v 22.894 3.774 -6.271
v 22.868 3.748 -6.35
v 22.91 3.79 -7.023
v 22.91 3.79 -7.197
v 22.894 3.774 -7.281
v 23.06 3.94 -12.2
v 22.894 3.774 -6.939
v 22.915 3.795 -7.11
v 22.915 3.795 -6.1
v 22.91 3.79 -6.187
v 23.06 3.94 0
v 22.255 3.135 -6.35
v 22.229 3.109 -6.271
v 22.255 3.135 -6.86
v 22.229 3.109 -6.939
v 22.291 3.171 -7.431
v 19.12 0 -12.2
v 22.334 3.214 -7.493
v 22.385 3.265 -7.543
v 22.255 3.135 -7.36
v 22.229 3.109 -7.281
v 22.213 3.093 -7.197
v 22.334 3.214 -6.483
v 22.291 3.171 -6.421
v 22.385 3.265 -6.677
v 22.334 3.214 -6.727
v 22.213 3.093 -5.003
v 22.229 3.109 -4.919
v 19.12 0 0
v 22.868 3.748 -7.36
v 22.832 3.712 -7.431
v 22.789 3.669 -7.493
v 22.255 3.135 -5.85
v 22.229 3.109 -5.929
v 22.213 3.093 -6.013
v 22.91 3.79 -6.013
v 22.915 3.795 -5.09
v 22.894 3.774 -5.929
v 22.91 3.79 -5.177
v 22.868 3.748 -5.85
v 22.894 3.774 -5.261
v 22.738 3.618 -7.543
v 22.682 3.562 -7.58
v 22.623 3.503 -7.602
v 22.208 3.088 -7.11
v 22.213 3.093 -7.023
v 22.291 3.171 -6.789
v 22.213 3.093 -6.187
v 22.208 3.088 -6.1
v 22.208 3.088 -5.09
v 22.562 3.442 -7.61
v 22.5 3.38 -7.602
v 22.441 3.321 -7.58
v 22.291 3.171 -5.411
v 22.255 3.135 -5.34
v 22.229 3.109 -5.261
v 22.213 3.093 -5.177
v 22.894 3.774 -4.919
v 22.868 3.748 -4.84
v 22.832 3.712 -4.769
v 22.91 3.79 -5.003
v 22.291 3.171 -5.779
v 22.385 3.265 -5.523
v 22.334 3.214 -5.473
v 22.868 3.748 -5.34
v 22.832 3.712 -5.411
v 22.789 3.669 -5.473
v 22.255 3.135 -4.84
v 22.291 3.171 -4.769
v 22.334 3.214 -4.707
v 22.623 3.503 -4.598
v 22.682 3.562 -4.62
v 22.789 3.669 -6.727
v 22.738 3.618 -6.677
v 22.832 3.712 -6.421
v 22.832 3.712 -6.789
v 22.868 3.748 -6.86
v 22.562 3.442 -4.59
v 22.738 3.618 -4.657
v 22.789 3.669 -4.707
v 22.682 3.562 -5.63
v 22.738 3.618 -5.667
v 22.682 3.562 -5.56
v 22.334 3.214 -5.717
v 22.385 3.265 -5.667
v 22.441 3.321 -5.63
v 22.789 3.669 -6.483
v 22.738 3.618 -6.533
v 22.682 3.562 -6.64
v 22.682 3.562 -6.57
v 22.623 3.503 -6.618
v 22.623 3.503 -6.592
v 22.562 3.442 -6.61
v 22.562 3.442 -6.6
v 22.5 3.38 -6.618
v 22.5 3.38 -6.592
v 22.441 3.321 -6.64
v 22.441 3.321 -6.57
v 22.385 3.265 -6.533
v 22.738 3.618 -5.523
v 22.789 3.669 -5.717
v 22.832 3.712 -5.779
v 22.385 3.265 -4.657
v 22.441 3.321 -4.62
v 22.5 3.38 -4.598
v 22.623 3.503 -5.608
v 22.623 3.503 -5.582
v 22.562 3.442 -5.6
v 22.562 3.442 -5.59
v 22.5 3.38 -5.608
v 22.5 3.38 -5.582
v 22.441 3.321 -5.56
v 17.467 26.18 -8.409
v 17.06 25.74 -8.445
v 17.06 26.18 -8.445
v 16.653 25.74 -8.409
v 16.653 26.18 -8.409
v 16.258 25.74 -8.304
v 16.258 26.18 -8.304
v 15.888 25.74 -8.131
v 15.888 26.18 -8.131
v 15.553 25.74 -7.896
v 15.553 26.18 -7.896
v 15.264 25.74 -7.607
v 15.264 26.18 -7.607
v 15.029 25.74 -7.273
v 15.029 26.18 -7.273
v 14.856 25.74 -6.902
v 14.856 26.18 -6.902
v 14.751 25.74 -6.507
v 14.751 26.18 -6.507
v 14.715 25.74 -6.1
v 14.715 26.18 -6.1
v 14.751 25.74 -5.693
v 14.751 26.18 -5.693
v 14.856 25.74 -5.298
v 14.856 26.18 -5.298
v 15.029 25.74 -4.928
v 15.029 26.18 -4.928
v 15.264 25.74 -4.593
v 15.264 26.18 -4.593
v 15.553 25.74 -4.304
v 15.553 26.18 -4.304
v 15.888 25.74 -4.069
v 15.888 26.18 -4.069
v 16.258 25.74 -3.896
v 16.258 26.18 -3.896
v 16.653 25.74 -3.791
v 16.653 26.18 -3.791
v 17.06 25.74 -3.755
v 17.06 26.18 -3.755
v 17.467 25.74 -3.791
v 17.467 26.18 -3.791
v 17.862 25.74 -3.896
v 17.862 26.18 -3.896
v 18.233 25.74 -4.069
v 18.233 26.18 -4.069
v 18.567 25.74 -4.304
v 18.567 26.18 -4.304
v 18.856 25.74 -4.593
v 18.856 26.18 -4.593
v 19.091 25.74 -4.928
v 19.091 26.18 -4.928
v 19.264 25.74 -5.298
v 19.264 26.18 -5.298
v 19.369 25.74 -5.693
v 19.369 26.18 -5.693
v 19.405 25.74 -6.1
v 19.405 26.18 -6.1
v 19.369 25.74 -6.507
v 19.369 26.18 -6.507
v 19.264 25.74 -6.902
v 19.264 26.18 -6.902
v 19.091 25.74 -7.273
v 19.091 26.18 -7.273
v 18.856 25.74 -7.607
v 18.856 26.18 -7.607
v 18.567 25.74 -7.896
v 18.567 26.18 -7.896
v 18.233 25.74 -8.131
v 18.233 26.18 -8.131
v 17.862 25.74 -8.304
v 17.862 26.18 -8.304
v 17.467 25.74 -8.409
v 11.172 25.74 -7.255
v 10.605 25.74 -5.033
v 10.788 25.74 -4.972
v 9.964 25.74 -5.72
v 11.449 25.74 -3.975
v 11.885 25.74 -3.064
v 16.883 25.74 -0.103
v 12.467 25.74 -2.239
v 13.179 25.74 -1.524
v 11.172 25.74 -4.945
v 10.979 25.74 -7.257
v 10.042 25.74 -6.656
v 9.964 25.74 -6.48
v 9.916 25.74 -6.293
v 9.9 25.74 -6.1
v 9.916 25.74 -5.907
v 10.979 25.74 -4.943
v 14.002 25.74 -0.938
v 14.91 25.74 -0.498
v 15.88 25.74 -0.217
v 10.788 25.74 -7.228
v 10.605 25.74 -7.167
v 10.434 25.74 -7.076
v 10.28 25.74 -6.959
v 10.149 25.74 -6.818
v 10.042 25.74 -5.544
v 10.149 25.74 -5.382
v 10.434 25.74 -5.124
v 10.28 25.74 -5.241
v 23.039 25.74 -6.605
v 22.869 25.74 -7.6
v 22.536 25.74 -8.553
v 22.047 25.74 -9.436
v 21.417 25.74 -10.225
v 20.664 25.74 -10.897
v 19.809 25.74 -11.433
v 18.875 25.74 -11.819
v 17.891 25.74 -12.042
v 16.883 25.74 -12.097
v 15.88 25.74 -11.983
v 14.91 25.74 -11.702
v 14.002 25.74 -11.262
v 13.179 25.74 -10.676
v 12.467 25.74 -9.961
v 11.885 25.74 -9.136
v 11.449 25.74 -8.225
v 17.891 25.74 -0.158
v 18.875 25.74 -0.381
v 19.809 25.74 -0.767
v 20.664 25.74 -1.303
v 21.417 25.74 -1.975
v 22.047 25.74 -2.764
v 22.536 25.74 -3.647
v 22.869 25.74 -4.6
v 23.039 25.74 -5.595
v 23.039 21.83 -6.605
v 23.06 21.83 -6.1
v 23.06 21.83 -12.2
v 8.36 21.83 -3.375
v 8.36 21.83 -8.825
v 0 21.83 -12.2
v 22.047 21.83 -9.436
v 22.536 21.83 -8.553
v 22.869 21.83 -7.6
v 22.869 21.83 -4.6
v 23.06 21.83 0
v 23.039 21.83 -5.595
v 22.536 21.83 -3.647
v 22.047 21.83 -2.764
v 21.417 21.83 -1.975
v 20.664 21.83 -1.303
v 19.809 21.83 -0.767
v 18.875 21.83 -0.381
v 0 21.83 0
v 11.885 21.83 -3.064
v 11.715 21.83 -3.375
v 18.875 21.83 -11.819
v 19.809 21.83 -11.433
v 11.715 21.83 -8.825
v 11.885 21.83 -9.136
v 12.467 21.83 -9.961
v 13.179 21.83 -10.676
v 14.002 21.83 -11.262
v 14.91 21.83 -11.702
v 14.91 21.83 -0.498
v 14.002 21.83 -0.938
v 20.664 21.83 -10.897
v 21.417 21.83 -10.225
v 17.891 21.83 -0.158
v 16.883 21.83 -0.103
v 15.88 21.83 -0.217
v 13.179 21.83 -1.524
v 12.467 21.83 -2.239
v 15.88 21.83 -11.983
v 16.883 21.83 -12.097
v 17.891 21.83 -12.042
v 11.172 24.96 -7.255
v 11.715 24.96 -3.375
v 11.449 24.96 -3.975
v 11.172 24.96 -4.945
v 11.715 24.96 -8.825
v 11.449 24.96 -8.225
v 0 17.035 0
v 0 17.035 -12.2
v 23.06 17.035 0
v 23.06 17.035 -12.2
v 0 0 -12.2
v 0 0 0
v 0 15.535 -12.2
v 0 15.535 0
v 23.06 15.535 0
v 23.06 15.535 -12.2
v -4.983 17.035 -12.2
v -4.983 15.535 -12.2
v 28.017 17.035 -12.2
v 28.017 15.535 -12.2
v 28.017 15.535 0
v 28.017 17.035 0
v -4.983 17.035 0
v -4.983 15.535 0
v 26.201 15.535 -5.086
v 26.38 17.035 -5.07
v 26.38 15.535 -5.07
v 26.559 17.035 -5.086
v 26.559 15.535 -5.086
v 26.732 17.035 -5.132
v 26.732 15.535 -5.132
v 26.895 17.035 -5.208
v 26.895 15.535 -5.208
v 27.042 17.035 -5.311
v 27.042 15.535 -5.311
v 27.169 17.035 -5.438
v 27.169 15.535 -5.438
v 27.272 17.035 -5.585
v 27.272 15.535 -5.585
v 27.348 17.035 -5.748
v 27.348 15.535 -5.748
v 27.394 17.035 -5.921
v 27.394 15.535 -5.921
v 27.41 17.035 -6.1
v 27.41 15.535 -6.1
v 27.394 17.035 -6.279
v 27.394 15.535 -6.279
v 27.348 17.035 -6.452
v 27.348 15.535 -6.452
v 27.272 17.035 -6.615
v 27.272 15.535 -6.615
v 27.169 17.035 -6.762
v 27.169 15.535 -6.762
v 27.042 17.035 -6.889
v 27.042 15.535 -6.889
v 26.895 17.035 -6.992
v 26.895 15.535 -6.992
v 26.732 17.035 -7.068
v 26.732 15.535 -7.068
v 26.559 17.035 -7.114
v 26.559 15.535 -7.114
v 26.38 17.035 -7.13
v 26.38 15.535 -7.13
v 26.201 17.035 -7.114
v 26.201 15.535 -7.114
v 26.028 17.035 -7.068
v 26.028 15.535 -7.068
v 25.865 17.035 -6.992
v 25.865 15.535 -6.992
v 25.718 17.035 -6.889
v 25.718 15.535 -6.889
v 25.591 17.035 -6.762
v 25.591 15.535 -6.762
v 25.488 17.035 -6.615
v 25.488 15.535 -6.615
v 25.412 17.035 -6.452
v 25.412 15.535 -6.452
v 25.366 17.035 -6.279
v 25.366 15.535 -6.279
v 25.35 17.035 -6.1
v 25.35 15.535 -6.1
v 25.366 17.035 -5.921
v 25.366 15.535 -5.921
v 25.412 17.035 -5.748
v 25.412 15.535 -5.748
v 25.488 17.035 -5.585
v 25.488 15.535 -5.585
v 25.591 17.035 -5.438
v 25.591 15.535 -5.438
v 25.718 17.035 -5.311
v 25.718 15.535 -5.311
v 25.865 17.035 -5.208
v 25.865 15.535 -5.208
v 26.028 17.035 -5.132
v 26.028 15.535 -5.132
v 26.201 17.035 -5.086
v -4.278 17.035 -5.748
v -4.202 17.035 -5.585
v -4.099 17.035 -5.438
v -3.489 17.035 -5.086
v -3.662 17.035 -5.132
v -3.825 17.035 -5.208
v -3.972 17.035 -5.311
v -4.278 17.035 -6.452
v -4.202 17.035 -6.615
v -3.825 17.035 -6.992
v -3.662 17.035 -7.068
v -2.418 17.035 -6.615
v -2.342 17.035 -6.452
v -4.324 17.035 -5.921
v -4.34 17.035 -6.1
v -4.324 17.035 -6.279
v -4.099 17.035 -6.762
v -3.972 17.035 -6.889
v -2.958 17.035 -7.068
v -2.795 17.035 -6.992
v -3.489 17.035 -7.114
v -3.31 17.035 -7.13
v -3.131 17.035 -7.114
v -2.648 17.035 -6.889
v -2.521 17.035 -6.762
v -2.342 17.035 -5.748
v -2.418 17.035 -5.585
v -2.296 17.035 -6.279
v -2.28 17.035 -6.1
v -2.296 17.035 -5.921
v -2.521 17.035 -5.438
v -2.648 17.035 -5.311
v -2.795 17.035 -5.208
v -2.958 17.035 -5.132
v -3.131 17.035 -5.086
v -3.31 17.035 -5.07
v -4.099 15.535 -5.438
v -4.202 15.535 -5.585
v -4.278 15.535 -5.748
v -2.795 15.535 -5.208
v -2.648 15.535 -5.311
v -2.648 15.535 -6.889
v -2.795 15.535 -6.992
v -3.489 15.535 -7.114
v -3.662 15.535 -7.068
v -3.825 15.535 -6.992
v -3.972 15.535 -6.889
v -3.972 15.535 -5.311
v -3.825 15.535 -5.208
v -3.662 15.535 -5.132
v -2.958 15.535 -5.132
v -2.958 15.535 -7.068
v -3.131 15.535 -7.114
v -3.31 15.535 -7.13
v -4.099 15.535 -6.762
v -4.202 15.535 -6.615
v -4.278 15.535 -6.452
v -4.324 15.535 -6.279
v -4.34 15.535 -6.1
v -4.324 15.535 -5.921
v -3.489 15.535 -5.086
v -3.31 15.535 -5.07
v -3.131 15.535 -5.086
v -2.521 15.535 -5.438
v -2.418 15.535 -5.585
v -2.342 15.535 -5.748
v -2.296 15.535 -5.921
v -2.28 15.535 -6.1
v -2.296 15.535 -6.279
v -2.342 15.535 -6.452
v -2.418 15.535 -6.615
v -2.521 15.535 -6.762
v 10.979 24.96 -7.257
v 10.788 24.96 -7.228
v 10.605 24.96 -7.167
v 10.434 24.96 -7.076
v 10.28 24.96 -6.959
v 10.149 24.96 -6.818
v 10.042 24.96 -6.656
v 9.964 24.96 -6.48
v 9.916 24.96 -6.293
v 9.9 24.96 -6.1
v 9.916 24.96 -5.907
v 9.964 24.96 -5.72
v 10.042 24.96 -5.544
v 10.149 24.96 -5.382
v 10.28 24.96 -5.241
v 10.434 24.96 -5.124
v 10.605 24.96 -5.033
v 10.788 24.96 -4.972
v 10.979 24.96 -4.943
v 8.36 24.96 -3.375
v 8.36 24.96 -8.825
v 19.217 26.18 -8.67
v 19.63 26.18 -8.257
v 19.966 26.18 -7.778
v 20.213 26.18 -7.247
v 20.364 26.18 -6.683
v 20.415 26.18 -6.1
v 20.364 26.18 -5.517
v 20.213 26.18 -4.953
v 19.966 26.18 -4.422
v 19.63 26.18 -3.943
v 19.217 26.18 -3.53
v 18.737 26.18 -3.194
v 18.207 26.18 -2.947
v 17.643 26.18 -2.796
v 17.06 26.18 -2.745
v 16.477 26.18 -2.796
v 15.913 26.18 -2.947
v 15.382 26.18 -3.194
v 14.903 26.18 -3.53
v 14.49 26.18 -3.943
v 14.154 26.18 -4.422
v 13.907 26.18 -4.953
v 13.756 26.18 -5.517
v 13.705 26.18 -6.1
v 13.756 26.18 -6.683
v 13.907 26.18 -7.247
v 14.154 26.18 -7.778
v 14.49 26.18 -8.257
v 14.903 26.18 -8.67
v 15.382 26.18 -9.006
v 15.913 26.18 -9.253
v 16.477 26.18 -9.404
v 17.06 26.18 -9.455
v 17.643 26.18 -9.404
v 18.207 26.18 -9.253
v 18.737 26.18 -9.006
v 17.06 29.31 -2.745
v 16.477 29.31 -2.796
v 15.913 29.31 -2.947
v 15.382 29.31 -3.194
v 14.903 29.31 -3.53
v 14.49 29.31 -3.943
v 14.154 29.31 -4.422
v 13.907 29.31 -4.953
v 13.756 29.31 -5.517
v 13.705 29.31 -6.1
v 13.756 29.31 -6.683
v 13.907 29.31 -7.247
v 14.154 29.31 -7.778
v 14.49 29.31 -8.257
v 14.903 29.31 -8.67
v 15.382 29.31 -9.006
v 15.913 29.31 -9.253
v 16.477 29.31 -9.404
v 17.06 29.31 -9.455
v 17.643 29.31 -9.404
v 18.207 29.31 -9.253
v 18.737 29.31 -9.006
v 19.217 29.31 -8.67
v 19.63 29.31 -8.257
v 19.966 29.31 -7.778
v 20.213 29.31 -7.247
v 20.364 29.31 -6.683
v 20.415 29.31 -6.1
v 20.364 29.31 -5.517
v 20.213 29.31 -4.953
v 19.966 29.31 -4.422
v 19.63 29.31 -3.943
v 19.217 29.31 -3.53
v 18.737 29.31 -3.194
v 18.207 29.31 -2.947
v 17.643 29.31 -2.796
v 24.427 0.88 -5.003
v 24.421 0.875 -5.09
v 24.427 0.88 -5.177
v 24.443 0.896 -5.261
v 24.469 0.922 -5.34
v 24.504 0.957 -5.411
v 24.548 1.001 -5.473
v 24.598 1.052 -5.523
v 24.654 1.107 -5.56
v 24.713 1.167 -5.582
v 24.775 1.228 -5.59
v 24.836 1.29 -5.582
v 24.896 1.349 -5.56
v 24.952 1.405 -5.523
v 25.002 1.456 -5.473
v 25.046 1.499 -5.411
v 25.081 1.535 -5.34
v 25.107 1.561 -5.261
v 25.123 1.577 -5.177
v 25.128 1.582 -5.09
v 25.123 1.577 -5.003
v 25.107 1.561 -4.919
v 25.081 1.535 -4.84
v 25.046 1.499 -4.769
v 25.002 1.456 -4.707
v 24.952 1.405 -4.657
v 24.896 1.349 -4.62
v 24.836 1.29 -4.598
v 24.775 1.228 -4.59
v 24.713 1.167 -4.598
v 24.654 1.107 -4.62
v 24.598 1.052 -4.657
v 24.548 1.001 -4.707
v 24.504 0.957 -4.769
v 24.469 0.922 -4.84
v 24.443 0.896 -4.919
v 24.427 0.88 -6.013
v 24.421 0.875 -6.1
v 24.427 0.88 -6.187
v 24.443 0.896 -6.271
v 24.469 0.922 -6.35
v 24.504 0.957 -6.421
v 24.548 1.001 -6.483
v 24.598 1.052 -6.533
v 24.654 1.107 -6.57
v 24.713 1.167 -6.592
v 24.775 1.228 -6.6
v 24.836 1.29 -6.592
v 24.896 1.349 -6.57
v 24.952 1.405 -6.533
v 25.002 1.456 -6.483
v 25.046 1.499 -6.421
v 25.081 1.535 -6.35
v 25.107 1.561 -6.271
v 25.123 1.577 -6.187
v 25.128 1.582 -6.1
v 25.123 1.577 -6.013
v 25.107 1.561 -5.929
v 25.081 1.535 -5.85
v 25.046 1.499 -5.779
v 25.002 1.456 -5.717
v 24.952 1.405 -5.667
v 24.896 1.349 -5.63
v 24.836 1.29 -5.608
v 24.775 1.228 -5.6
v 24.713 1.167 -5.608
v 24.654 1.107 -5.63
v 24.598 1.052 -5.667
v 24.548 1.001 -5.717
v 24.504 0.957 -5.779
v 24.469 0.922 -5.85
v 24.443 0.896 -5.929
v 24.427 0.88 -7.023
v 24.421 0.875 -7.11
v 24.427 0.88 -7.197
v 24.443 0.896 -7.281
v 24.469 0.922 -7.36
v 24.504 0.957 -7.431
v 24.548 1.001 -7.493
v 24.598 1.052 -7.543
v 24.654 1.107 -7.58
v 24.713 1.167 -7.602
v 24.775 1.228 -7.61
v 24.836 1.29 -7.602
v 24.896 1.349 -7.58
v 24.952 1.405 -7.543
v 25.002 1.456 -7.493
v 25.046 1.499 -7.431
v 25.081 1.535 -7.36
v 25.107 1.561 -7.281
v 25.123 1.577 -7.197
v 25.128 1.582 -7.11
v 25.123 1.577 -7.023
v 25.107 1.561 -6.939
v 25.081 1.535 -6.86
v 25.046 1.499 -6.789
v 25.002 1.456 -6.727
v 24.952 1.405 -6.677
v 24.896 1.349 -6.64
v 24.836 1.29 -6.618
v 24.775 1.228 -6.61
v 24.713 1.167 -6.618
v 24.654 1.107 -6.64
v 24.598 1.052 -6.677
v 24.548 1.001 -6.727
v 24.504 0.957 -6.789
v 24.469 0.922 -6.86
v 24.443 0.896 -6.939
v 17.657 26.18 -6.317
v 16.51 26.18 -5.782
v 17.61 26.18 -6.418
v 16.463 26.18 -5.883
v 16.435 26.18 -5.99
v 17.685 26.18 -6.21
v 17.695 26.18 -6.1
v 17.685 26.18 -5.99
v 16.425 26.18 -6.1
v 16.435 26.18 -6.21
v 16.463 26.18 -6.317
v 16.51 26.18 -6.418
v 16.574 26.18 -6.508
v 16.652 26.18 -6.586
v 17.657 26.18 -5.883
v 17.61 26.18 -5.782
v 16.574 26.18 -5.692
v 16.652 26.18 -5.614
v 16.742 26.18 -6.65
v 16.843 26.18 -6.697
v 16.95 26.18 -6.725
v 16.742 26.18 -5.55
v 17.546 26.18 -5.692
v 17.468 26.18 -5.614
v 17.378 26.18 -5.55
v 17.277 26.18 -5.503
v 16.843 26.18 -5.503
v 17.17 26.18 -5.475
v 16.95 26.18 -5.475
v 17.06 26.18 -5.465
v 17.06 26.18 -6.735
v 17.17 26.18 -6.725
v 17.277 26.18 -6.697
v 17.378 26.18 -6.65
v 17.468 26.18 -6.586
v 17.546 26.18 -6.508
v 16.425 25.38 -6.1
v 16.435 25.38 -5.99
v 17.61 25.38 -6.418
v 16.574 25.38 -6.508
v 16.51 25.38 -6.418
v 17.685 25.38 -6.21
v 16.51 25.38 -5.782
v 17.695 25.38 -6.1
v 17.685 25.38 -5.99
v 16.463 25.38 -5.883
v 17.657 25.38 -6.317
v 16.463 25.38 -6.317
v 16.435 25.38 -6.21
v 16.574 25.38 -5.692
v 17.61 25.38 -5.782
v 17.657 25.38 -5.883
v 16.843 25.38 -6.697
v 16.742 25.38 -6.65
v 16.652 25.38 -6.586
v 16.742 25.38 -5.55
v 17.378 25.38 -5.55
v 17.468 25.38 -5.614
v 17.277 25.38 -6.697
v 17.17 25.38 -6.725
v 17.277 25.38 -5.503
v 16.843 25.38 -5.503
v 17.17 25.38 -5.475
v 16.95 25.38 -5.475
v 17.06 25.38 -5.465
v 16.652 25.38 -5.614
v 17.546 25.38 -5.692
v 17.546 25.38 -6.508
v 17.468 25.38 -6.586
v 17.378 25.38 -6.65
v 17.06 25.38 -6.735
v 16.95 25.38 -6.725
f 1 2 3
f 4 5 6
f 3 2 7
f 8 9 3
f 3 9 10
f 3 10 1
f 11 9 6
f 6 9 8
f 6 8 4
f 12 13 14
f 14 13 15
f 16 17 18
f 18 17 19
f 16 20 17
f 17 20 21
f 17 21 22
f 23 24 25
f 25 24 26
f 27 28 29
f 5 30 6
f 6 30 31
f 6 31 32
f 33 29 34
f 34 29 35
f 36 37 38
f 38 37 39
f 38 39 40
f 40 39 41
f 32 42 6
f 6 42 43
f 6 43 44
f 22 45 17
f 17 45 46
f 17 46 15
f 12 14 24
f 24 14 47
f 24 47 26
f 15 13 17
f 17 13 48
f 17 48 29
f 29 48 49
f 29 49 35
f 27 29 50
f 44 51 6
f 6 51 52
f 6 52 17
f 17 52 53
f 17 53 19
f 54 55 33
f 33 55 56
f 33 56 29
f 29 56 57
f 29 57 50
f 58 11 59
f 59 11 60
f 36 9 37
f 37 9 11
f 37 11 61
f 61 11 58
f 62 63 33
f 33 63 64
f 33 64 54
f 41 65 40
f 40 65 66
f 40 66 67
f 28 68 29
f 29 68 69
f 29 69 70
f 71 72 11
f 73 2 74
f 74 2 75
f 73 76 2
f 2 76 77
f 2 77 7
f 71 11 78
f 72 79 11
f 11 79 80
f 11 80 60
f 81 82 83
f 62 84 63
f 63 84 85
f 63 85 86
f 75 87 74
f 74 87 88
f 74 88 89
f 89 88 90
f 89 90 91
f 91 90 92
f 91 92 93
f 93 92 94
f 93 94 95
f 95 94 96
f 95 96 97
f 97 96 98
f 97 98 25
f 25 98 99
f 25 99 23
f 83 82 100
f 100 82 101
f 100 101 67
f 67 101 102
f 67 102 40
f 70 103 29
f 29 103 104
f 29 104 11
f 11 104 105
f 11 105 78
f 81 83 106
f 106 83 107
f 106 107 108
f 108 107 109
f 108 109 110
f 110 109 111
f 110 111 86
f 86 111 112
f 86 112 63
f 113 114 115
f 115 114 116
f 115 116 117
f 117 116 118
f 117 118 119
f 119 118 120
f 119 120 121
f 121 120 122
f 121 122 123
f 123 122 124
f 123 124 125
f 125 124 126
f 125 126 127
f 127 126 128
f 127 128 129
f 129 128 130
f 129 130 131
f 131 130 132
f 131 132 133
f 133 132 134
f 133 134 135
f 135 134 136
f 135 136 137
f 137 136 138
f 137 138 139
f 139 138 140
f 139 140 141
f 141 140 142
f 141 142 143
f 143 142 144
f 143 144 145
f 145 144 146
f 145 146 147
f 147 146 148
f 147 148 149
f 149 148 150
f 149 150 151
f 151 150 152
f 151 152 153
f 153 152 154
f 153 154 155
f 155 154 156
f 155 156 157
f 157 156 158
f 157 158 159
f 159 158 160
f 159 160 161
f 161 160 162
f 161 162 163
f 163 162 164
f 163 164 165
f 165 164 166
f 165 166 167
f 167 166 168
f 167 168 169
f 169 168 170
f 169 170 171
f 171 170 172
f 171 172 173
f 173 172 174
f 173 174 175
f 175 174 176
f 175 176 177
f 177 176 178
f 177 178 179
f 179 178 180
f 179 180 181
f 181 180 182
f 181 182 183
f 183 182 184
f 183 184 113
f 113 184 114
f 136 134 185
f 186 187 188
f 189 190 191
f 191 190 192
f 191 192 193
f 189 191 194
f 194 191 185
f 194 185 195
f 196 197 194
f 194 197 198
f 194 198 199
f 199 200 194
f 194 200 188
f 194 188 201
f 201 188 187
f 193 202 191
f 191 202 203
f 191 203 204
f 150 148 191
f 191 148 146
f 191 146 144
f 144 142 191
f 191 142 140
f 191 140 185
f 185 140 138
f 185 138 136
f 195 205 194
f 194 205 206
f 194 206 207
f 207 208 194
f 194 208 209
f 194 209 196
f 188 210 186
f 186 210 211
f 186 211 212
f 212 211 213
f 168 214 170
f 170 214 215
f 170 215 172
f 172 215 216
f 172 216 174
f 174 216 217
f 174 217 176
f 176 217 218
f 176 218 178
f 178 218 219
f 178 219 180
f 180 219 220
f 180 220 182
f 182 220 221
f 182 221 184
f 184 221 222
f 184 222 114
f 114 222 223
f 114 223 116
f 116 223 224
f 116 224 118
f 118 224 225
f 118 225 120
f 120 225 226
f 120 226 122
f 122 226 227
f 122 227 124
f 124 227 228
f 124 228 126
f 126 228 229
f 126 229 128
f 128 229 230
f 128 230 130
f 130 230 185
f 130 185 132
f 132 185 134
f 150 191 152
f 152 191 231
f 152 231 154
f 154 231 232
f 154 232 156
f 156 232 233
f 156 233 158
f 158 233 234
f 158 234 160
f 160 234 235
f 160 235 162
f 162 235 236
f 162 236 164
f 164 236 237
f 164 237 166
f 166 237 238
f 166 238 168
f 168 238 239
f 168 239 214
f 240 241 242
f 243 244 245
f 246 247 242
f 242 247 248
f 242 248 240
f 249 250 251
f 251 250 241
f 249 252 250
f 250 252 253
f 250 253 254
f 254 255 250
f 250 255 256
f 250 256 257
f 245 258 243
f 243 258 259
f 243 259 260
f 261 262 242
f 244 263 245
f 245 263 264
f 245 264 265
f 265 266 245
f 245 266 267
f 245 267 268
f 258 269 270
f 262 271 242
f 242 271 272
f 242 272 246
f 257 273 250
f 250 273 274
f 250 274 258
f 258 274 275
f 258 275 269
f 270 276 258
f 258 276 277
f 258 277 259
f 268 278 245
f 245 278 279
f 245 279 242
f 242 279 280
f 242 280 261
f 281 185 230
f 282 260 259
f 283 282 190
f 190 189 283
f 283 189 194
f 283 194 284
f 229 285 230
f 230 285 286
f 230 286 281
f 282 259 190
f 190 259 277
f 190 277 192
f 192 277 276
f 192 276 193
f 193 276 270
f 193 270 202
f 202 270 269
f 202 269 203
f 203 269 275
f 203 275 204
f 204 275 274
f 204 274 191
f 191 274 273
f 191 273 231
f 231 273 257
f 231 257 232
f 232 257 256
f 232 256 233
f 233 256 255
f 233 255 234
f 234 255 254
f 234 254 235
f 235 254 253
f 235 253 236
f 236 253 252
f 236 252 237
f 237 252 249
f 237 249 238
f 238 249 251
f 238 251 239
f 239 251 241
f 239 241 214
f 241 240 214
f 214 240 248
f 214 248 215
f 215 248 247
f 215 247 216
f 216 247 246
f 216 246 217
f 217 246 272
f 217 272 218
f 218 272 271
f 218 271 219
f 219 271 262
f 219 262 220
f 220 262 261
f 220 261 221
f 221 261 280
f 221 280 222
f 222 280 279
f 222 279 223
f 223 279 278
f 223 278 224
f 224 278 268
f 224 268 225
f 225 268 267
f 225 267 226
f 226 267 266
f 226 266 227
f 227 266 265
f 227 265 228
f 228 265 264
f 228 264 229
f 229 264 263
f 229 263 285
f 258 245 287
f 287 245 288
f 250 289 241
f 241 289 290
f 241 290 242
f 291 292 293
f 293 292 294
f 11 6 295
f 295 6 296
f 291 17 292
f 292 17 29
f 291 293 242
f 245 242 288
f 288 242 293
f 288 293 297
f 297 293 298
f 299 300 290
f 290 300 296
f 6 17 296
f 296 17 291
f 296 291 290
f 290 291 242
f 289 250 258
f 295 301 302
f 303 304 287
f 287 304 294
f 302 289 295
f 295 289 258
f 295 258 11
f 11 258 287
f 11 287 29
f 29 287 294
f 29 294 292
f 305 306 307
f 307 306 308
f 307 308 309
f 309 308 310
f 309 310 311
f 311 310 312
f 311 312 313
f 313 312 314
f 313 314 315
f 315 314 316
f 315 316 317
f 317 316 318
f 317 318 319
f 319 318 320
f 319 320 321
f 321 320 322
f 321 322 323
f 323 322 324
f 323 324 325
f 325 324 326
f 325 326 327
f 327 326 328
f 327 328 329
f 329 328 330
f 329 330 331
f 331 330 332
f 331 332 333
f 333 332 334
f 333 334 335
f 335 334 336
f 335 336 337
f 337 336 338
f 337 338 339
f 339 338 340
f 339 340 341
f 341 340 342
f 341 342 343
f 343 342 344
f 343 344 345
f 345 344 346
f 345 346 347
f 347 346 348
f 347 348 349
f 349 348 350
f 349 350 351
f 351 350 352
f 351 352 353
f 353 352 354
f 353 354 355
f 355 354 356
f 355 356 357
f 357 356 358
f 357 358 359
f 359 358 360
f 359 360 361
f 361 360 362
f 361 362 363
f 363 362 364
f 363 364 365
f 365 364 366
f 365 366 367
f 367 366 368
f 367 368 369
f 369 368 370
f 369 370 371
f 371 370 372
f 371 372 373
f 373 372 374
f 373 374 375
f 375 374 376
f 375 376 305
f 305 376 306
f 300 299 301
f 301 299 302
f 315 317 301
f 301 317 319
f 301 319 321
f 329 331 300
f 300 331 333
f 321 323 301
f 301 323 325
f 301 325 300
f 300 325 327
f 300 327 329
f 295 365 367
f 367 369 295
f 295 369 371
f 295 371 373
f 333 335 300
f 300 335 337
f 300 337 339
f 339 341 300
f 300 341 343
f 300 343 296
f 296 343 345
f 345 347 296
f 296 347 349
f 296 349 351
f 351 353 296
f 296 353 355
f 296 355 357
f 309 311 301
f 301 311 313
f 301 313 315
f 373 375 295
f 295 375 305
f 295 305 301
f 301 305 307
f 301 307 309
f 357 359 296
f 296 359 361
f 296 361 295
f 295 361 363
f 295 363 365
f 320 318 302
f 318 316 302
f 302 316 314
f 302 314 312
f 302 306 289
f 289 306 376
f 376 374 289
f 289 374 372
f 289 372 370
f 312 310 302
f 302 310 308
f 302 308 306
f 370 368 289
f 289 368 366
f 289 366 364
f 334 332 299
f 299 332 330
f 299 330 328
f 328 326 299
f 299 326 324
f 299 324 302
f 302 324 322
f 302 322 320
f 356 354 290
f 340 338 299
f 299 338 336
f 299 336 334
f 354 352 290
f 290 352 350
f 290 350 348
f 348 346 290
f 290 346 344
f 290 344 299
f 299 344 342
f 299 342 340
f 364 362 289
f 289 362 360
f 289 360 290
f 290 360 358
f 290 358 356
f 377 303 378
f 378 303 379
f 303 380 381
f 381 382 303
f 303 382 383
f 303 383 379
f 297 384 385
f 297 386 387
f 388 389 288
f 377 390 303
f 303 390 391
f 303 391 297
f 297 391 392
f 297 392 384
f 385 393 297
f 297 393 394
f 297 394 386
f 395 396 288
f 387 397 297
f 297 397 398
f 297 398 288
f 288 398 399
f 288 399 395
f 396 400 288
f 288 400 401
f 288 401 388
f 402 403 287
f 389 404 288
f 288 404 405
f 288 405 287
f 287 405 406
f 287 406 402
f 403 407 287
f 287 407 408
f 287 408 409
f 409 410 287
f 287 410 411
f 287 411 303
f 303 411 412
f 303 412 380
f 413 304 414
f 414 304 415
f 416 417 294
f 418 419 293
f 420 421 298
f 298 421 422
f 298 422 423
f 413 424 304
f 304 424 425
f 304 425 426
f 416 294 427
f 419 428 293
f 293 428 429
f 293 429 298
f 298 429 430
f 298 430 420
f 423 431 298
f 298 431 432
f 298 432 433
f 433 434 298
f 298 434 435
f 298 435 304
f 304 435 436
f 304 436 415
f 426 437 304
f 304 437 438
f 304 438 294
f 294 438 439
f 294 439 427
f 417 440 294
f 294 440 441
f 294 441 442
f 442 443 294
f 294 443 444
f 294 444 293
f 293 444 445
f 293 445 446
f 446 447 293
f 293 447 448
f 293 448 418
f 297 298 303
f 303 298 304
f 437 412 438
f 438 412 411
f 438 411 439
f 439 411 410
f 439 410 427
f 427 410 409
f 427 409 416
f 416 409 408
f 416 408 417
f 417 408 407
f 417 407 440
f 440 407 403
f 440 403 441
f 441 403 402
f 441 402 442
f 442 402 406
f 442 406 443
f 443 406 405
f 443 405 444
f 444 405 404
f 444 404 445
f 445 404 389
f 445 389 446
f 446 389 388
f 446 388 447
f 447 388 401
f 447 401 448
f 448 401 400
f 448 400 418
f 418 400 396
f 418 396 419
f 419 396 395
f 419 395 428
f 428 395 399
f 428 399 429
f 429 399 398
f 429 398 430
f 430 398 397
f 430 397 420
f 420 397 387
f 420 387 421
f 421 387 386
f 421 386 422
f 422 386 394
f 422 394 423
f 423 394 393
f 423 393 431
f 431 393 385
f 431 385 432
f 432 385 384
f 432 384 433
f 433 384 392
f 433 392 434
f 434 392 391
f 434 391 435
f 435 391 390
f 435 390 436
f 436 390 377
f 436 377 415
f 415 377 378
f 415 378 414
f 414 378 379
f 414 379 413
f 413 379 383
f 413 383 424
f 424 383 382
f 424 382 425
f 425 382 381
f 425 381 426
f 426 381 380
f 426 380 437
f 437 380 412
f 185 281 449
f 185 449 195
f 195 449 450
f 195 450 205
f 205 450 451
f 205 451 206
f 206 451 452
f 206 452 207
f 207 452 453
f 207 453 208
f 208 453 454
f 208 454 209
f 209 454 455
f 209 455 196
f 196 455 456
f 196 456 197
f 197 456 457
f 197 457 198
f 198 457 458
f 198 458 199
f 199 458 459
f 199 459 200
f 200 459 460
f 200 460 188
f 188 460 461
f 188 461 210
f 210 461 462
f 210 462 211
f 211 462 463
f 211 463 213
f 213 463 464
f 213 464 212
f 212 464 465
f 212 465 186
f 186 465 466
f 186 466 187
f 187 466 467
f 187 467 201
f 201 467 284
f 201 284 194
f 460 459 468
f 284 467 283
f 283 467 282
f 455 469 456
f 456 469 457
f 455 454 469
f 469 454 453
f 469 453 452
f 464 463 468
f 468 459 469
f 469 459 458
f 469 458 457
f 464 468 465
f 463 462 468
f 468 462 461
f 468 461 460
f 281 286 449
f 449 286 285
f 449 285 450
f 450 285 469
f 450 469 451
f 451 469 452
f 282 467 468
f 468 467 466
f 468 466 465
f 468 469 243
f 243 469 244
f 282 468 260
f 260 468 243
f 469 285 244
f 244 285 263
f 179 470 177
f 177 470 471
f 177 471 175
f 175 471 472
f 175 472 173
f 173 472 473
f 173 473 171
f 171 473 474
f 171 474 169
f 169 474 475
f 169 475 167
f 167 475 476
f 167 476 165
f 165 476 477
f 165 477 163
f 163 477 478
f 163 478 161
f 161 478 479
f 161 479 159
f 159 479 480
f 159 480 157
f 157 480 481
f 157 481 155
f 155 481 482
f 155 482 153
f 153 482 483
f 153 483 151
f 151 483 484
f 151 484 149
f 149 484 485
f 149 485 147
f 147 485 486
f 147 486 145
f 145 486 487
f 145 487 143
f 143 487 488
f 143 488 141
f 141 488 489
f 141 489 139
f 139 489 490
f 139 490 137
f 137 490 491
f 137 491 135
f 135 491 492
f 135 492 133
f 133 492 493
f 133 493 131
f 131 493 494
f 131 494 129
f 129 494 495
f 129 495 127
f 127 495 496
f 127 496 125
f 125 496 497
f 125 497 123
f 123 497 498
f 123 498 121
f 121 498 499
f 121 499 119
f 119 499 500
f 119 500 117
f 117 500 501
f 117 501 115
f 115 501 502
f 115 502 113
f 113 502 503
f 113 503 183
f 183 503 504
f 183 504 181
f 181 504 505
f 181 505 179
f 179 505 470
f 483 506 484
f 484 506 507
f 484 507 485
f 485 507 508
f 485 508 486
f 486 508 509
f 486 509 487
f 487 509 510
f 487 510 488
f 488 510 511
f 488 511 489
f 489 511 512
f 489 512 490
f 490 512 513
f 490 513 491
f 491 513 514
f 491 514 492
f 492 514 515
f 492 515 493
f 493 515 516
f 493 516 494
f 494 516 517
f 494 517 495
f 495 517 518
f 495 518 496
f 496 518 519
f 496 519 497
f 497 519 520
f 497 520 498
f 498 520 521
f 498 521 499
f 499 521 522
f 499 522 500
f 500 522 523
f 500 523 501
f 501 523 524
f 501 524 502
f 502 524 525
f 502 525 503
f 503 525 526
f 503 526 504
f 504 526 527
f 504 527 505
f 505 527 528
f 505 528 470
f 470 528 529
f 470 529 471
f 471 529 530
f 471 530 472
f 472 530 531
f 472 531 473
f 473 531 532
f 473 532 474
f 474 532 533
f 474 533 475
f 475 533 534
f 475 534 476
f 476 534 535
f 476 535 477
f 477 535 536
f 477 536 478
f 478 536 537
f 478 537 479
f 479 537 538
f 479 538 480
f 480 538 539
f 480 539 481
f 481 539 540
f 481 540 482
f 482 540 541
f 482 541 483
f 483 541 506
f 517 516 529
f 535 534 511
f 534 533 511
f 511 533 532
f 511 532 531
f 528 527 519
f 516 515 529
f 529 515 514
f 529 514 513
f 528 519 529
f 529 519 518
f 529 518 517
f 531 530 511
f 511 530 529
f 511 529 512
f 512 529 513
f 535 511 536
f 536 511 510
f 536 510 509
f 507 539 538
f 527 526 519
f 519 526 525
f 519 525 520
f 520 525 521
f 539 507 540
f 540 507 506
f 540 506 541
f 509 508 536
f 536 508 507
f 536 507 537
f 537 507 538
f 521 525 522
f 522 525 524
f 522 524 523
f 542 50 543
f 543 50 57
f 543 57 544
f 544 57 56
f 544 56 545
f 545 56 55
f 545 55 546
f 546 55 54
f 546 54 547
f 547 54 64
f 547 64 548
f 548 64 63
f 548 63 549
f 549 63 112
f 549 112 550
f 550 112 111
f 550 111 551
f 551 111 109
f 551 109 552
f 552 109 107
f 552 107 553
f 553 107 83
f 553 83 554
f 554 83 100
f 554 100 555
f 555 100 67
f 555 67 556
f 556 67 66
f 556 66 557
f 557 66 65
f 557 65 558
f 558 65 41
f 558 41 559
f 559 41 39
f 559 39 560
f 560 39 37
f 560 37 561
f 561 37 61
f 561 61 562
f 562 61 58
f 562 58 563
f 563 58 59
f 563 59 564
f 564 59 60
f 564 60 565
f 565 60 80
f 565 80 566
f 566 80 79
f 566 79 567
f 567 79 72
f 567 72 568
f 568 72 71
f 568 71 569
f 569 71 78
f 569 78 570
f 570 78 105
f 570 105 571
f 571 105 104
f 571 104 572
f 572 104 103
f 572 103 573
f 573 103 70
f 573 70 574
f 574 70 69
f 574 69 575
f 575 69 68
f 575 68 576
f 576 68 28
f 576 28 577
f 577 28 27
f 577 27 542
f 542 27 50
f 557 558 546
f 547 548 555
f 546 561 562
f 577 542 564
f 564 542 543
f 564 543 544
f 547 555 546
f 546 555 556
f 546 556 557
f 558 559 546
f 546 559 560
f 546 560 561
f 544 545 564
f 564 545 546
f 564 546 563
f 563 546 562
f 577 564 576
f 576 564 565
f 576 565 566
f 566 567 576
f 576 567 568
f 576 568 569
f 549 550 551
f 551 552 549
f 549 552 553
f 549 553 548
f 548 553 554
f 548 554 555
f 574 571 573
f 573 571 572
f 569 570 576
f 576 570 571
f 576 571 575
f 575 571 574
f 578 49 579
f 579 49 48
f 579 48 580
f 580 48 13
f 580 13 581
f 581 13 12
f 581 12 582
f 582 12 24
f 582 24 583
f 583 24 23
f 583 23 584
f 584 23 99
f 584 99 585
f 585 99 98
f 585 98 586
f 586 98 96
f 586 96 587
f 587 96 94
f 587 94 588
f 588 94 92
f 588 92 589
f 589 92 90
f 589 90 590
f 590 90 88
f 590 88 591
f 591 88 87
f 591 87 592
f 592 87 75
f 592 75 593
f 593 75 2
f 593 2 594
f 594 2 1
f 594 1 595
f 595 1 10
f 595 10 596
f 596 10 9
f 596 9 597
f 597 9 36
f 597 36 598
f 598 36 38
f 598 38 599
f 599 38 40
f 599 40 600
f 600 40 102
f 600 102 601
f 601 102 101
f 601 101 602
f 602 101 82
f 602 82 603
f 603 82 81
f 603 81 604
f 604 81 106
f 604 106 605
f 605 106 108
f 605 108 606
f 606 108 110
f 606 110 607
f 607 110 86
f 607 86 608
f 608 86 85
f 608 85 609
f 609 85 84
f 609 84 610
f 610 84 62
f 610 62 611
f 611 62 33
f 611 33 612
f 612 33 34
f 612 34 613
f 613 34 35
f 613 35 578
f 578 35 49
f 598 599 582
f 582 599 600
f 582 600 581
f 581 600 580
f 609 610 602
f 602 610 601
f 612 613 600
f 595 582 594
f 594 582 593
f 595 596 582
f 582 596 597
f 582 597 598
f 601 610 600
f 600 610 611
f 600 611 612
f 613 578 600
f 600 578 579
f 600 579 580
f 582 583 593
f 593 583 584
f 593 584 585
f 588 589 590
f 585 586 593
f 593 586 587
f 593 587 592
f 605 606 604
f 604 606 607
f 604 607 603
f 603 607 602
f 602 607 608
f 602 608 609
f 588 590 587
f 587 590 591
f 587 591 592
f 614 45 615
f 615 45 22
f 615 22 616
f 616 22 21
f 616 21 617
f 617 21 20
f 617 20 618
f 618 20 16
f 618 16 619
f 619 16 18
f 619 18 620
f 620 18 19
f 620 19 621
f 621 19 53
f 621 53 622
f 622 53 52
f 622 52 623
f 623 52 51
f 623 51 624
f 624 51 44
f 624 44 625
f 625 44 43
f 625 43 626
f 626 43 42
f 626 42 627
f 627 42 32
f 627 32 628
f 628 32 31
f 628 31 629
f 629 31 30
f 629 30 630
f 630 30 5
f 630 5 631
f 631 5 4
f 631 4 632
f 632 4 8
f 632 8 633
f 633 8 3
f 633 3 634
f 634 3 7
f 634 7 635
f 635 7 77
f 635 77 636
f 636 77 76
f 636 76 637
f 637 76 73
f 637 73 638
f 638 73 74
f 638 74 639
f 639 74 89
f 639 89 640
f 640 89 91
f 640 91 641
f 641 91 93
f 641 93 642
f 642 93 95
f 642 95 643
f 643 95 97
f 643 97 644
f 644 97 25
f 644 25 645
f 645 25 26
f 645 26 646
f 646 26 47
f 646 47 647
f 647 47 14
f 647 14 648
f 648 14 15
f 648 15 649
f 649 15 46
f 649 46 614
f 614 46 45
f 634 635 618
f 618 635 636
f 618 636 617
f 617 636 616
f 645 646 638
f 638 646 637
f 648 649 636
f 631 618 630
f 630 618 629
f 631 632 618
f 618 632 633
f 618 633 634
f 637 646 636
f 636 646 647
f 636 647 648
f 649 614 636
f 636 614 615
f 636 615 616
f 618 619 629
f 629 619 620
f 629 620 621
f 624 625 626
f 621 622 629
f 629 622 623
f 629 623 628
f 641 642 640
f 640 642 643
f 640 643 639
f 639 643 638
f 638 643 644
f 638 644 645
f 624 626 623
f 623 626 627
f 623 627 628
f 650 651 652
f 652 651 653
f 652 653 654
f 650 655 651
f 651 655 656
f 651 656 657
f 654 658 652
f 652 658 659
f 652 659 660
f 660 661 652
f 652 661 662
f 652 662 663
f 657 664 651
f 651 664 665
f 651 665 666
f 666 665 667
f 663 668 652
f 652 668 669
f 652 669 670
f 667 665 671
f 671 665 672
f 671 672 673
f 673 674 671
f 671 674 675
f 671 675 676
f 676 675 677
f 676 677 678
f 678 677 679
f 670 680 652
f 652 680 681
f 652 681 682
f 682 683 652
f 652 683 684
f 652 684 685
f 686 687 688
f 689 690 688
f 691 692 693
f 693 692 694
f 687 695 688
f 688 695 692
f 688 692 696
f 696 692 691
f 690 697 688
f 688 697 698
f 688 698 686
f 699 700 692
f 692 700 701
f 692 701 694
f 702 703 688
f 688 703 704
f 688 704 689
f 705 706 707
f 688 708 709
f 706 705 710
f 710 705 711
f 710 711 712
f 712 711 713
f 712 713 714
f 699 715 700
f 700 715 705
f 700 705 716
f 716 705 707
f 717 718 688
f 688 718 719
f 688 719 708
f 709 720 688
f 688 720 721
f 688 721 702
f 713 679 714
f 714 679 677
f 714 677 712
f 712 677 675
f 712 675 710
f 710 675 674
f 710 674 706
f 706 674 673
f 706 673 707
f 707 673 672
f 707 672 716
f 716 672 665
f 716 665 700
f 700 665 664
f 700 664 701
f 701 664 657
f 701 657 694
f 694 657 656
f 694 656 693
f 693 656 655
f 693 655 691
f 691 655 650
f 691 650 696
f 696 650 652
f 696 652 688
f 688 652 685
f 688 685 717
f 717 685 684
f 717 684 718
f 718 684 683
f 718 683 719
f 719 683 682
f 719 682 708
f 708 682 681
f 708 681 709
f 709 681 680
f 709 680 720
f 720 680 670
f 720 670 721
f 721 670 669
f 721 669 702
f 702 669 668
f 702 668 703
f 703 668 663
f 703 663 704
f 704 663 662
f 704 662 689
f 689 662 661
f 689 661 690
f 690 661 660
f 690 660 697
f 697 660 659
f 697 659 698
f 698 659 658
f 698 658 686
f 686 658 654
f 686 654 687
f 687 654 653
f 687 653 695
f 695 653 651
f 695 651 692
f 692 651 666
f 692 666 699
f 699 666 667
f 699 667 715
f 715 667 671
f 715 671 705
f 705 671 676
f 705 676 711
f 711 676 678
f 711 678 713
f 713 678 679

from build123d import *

# Parameters (mm, degrees)
BOSS_EXTRUDE1_DEPTH     = 12.2
SKETCH4_W               = 33
SKETCH4_H               = 1.5
BOSS_EXTRUDE2_DEPTH     = 12.2
SKETCH6_R               = 1.03
CUT_EXTRUDE1_DEPTH      = 5.83
CUT_EXTRUDE1_DEPTH_BACK = 18
SKETCH7_R               = 1.03
CUT_EXTRUDE2_DEPTH      = 5.83
CUT_EXTRUDE2_DEPTH_BACK = 18
SKETCH9_R               = 6
BOSS_EXTRUDE3_DEPTH     = 8.74
SKETCH11_R              = 1.16
BOSS_EXTRUDE4_DEPTH     = 8.74
SKETCH13_W              = 5.4
SKETCH13_H              = 5.45
BOSS_EXTRUDE5_DEPTH     = 7.96
SKETCH14_R              = 2.345
BOSS_EXTRUDE6_DEPTH     = 11.51
SKETCH15_R              = 0.635
CUT_EXTRUDE3_DEPTH      = 3.13
BOSS_EXTRUDE7_START     = 0.8
SKETCH17_R              = 3.355
BOSS_EXTRUDE7_DEPTH     = 3.13
SKETCH18_R              = 0.5
BOSS_EXTRUDE8_DEPTH     = 3.13


with BuildPart() as part:
    # Sketch1 → Boss-Extrude1 (new body)
    with BuildSketch(Plane.XY):
        Polygon((19.12, 0), (23.06, 3.94), (23.06, 21.83), (0, 21.83), (0, 0), align=None)
    extrude(amount=-BOSS_EXTRUDE1_DEPTH)



with BuildPart() as body_2:
    # Sketch4 → Boss-Extrude2 (new body)
    with BuildSketch(Plane.XY):
        with Locations((11.517097498, 16.2852801)):
            Rectangle(SKETCH4_W, SKETCH4_H)
    extrude(amount=-BOSS_EXTRUDE2_DEPTH)

    # Sketch6 → Cut-Extrude1 (cut, two sides)
    with BuildSketch(Plane(origin=(0, 17, 0), x_dir=(1, 0, 0), z_dir=(0, 1, 0))) as cut_extrude1_sk:
        with Locations((-3.31, 6.1)):
            Circle(SKETCH6_R)
    extrude(amount=CUT_EXTRUDE1_DEPTH, mode=Mode.SUBTRACT)
    extrude(cut_extrude1_sk.sketch, amount=-CUT_EXTRUDE1_DEPTH_BACK, mode=Mode.SUBTRACT)

    # Sketch7 → Cut-Extrude2 (cut, two sides)
    with BuildSketch(Plane(origin=(0, 17, 0), x_dir=(1, 0, 0), z_dir=(0, 1, 0))) as cut_extrude2_sk:
        with Locations((26.38, 6.1)):
            Circle(SKETCH7_R)
    extrude(amount=CUT_EXTRUDE2_DEPTH, mode=Mode.SUBTRACT)
    extrude(cut_extrude2_sk.sketch, amount=-CUT_EXTRUDE2_DEPTH_BACK, mode=Mode.SUBTRACT)


with BuildPart() as part_1:
    add(part.part)

    add(body_2.part)  # Boss-Extrude3 merges body 2
    # Sketch9 → Boss-Extrude3 (add)
    with BuildSketch(Plane(origin=(0, 17, 0), x_dir=(1, 0, 0), z_dir=(0, 1, 0))):
        with Locations((17.06, 6.1)):
            Circle(SKETCH9_R)
    extrude(amount=BOSS_EXTRUDE3_DEPTH)

    # Sketch11 → Boss-Extrude4 (add)
    with BuildSketch(Plane(origin=(0, 17, 0), x_dir=(1, 0, 0), z_dir=(0, 1, 0))):
        with Locations((11.06, 6.1)):
            Circle(SKETCH11_R)
    extrude(amount=BOSS_EXTRUDE4_DEPTH)

    # Sketch13 → Boss-Extrude5 (add)
    with BuildSketch(Plane(origin=(0, 17, 0), x_dir=(1, 0, 0), z_dir=(0, 1, 0))):
        with Locations((11.06, 6.1)):
            Rectangle(SKETCH13_W, SKETCH13_H)
    extrude(amount=BOSS_EXTRUDE5_DEPTH)

    # Sketch14 → Boss-Extrude6 (add)
    with BuildSketch(Plane(origin=(0, 17, 0), x_dir=(1, 0, 0), z_dir=(0, 1, 0))):
        with Locations((17.06, 6.1)):
            Circle(SKETCH14_R)
    extrude(amount=BOSS_EXTRUDE6_DEPTH)

    # Sketch15 → Cut-Extrude3 (cut)
    with BuildSketch(Plane(origin=(0, 28.51, 0), x_dir=(1, 0, 0), z_dir=(0, 1, 0))):
        with Locations((17.06, 6.1)):
            Circle(SKETCH15_R)
    extrude(amount=-CUT_EXTRUDE3_DEPTH, mode=Mode.SUBTRACT)

    # Sketch17 → Boss-Extrude7 (add)
    with BuildSketch(Plane(origin=(0, 28.51, 0), x_dir=(1, 0, 0), z_dir=(0, 1, 0)).offset(BOSS_EXTRUDE7_START)):
        with Locations((17.06, 6.1)):
            Circle(SKETCH17_R)
    extrude(amount=-BOSS_EXTRUDE7_DEPTH)

    # Sketch18 → Boss-Extrude8 (add)
    with BuildSketch(Plane(origin=(9.56, -9.56, 0), x_dir=(0, 0, -1), z_dir=(0.707106781, -0.707106781, 0))):
        with Locations((5.09, 18.386997448)):
            Circle(SKETCH18_R)
        with Locations((6.1, 18.386997448)):
            Circle(SKETCH18_R)
        with Locations((7.11, 18.386997448)):
            Circle(SKETCH18_R)
    extrude(amount=BOSS_EXTRUDE8_DEPTH)


solid = part_1.part
